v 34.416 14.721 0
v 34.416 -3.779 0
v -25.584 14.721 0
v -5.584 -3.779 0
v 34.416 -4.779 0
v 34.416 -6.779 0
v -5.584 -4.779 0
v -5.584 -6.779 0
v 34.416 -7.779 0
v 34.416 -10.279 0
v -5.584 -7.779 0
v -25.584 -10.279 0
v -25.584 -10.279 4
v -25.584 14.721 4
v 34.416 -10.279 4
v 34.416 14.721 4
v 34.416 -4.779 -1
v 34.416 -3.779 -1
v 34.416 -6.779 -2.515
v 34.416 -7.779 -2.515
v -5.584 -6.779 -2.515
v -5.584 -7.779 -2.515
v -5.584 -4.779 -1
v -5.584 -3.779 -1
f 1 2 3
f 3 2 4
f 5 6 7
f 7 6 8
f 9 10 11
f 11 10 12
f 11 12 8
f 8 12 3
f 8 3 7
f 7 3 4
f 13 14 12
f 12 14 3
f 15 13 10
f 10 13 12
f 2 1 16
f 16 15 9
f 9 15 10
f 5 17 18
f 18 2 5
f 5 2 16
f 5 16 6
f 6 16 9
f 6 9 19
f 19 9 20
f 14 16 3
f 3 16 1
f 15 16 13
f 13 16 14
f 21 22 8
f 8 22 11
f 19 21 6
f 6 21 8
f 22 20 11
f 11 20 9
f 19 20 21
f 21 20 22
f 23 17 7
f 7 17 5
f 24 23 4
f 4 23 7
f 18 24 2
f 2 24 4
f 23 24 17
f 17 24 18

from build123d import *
from build123d.topology import SkipClean

# Parameters (mm, degrees)
SKETCH1_W           = 60
SKETCH1_H           = 25
BOSS_EXTRUDE1_DEPTH = 4
SKETCH2_W           = 40
SKETCH2_H           = 1
BOSS_EXTRUDE2_DEPTH = 2.5146
SKETCH3_W           = 40
SKETCH3_H           = 1
BOSS_EXTRUDE3_DEPTH = 1


with BuildPart() as part:
    # Sketch1 → Boss-Extrude1 (new body)
    with BuildSketch(Plane.XY):
        with Locations((4.416243655, 2.220812183)):
            Rectangle(SKETCH1_W, SKETCH1_H)
    extrude(amount=BOSS_EXTRUDE1_DEPTH)

    # Sketch2 → Boss-Extrude2 (add)
    with BuildSketch(Plane(origin=(0, 0, 0), x_dir=(-1, 0, 0), z_dir=(0, 0, -1))):
        with Locations((-14.416243533, -7.279192817)):
            Rectangle(SKETCH2_W, SKETCH2_H)
    extrude(amount=BOSS_EXTRUDE2_DEPTH)

    # Sketch3 → Boss-Extrude3 (add)
    with SkipClean():  # the faces are left unmerged after this step: merging them gives an invalid solid
        with BuildSketch(Plane(origin=(0, 0, 0), x_dir=(-1, 0, 0), z_dir=(0, 0, -1))):
            with Locations((-14.416243533, -4.279192817)):
                Rectangle(SKETCH3_W, SKETCH3_H)
        extrude(amount=BOSS_EXTRUDE3_DEPTH)


solid = part.part
